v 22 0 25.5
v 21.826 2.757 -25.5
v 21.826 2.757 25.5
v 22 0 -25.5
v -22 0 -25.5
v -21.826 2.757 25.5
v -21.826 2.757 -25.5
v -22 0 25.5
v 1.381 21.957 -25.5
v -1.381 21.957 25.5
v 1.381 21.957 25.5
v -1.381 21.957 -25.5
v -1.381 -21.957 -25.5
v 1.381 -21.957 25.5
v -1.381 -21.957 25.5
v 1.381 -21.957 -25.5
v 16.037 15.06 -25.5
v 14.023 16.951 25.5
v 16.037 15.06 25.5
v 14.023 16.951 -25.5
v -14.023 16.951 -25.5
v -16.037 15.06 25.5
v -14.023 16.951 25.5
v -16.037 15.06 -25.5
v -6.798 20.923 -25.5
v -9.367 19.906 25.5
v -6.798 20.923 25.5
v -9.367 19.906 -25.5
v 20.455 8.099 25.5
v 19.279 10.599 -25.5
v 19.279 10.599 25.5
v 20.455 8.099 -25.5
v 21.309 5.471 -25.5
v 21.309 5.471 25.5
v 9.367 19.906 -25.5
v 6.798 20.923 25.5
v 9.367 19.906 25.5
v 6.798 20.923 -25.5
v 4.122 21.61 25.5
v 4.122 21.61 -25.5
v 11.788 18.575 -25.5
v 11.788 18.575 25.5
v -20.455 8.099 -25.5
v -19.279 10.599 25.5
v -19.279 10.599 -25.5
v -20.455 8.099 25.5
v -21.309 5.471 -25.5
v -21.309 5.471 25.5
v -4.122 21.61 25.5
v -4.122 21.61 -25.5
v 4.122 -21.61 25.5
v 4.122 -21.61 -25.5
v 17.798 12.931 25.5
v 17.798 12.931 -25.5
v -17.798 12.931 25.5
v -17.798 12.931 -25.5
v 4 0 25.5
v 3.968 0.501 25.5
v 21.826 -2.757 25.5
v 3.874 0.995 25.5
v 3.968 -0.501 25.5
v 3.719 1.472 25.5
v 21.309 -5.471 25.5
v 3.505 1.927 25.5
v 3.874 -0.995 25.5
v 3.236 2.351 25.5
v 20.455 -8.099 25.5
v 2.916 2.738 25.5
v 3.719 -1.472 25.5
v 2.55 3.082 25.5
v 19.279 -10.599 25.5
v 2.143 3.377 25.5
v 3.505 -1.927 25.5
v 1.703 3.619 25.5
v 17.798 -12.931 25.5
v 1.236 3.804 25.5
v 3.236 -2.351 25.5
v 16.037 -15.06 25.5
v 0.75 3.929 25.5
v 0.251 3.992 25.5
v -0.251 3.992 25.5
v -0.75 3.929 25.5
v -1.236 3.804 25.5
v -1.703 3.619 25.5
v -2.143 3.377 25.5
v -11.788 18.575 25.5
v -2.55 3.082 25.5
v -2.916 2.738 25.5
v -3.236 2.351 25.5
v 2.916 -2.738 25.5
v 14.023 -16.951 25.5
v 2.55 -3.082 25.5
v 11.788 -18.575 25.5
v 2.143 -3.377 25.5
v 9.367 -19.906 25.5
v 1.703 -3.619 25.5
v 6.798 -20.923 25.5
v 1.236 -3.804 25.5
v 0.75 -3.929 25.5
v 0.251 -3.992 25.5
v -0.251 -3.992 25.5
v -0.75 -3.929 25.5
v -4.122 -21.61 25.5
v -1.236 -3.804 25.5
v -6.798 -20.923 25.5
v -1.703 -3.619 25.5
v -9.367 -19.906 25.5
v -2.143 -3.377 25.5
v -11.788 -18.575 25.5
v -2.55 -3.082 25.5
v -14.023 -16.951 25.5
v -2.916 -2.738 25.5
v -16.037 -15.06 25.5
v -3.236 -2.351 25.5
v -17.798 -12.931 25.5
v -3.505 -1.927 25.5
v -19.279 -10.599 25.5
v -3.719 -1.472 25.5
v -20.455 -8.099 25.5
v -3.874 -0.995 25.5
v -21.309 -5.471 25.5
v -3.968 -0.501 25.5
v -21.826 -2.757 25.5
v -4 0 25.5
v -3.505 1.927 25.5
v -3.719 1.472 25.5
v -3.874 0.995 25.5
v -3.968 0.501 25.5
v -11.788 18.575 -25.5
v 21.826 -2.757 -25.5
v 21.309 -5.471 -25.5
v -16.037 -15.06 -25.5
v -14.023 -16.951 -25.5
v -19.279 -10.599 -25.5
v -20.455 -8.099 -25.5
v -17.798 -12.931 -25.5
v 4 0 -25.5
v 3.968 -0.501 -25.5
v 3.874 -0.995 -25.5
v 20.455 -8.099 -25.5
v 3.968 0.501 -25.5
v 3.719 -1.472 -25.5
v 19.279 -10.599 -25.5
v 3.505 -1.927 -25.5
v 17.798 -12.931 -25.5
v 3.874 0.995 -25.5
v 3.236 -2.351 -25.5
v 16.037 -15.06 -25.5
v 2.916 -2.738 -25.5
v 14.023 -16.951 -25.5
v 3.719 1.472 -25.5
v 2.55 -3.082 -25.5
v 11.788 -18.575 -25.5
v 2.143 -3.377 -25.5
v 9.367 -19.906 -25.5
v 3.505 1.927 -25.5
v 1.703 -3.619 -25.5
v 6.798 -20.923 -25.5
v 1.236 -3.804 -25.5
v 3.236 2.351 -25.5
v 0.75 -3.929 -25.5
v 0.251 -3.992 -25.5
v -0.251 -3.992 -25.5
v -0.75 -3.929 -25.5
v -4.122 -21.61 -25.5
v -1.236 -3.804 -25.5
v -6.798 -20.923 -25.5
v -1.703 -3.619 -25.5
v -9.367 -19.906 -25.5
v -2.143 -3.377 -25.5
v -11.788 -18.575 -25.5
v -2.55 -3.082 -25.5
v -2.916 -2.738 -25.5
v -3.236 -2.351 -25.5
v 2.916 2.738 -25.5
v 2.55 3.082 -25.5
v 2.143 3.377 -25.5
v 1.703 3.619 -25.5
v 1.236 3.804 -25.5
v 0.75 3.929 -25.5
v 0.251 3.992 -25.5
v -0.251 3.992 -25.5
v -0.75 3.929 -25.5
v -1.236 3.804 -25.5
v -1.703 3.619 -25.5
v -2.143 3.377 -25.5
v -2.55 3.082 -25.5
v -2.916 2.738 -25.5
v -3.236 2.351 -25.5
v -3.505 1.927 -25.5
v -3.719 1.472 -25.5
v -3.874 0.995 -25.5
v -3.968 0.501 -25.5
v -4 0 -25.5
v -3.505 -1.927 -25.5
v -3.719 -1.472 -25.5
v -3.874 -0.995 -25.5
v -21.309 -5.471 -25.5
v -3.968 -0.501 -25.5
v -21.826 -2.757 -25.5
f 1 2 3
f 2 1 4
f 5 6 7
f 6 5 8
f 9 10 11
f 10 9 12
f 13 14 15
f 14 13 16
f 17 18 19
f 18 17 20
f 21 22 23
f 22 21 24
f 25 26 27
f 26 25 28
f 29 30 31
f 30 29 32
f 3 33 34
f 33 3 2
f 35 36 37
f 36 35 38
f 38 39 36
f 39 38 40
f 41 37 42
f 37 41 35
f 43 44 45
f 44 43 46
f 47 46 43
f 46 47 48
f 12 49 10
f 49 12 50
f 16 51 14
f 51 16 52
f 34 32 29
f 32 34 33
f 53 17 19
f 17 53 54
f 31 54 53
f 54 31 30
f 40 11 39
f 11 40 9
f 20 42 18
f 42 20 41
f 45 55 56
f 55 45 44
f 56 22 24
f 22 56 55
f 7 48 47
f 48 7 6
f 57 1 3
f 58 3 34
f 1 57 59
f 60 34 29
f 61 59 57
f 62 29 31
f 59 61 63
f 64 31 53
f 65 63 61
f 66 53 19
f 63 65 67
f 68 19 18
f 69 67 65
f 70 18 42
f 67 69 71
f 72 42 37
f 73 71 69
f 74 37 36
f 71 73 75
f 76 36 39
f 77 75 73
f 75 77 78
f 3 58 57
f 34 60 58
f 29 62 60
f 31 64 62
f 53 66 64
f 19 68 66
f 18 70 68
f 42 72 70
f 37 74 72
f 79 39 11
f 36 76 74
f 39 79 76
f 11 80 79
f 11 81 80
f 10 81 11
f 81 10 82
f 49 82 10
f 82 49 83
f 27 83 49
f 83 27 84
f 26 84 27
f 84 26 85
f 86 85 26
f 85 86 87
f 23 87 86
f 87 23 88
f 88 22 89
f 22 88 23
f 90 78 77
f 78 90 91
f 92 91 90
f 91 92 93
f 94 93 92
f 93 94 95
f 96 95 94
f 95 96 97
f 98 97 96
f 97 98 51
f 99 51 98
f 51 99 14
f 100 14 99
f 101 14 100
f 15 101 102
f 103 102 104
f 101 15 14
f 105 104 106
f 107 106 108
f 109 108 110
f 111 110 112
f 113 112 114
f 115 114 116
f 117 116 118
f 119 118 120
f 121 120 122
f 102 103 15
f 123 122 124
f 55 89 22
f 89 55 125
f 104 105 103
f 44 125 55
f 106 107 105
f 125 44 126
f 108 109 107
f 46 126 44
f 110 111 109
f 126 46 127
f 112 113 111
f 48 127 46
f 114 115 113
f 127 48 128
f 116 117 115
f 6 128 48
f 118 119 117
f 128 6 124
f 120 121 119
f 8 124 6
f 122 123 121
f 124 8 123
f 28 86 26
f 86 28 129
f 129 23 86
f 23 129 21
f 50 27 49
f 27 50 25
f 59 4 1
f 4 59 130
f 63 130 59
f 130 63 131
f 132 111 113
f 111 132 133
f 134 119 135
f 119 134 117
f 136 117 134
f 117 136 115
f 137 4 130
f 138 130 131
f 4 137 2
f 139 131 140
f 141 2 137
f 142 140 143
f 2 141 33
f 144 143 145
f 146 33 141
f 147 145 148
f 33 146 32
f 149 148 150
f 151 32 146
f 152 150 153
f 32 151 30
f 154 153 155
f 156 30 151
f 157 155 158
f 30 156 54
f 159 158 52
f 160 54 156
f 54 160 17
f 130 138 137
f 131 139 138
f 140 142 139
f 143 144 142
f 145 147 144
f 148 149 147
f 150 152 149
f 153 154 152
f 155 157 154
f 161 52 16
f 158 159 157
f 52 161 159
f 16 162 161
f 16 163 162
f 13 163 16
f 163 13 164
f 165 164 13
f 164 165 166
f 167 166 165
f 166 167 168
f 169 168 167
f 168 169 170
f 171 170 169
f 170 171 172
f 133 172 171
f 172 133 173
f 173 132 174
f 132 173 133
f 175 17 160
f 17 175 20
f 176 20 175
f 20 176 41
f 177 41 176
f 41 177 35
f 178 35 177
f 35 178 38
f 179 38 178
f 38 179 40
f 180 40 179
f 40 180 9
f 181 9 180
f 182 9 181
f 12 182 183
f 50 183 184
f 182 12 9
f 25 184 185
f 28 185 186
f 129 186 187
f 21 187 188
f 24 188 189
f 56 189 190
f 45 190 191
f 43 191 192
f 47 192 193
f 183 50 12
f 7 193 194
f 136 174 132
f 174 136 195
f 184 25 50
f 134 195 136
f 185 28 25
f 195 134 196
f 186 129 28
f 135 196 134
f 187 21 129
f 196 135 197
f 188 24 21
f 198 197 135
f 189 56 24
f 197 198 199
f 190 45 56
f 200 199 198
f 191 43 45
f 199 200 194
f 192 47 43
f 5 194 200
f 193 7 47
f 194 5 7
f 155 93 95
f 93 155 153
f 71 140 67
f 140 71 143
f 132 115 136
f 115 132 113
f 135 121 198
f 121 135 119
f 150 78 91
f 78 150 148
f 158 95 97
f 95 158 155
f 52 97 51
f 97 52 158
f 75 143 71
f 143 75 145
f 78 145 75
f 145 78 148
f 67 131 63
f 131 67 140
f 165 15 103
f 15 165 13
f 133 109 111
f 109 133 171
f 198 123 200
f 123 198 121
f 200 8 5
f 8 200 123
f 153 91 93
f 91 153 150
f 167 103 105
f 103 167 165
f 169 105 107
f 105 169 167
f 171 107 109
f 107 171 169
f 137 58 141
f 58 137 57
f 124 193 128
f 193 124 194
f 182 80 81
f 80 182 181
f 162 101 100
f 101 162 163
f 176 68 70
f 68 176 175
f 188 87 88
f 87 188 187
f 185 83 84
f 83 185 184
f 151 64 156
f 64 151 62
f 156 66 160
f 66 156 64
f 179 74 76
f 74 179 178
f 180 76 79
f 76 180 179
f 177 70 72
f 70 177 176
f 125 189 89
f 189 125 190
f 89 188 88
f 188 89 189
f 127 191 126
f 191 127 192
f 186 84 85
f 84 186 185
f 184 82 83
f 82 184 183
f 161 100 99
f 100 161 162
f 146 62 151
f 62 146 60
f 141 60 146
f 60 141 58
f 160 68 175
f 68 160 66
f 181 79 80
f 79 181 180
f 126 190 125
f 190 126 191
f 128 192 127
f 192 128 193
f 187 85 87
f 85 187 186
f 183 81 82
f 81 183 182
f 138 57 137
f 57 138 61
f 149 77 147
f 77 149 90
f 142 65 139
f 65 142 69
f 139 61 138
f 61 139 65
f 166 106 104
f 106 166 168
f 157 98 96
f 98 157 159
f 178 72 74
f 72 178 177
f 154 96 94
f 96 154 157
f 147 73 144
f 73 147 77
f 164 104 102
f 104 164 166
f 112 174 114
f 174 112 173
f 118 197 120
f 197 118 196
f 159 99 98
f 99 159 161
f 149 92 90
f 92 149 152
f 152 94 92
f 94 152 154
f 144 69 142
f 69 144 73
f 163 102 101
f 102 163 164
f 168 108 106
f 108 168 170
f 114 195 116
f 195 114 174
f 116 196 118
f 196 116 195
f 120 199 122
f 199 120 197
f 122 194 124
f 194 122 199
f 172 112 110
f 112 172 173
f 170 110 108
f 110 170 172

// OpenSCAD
$fn = 50;


difference() {
	union() {
		translate(v = [0, 0, -25.5000000000]) {
			cylinder(h = 51, r = 22.0000000000);
		}
	}
	union() {
		translate(v = [0, 0, -100.0000000000]) {
			cylinder(h = 200, r = 4);
		}
	}
}
